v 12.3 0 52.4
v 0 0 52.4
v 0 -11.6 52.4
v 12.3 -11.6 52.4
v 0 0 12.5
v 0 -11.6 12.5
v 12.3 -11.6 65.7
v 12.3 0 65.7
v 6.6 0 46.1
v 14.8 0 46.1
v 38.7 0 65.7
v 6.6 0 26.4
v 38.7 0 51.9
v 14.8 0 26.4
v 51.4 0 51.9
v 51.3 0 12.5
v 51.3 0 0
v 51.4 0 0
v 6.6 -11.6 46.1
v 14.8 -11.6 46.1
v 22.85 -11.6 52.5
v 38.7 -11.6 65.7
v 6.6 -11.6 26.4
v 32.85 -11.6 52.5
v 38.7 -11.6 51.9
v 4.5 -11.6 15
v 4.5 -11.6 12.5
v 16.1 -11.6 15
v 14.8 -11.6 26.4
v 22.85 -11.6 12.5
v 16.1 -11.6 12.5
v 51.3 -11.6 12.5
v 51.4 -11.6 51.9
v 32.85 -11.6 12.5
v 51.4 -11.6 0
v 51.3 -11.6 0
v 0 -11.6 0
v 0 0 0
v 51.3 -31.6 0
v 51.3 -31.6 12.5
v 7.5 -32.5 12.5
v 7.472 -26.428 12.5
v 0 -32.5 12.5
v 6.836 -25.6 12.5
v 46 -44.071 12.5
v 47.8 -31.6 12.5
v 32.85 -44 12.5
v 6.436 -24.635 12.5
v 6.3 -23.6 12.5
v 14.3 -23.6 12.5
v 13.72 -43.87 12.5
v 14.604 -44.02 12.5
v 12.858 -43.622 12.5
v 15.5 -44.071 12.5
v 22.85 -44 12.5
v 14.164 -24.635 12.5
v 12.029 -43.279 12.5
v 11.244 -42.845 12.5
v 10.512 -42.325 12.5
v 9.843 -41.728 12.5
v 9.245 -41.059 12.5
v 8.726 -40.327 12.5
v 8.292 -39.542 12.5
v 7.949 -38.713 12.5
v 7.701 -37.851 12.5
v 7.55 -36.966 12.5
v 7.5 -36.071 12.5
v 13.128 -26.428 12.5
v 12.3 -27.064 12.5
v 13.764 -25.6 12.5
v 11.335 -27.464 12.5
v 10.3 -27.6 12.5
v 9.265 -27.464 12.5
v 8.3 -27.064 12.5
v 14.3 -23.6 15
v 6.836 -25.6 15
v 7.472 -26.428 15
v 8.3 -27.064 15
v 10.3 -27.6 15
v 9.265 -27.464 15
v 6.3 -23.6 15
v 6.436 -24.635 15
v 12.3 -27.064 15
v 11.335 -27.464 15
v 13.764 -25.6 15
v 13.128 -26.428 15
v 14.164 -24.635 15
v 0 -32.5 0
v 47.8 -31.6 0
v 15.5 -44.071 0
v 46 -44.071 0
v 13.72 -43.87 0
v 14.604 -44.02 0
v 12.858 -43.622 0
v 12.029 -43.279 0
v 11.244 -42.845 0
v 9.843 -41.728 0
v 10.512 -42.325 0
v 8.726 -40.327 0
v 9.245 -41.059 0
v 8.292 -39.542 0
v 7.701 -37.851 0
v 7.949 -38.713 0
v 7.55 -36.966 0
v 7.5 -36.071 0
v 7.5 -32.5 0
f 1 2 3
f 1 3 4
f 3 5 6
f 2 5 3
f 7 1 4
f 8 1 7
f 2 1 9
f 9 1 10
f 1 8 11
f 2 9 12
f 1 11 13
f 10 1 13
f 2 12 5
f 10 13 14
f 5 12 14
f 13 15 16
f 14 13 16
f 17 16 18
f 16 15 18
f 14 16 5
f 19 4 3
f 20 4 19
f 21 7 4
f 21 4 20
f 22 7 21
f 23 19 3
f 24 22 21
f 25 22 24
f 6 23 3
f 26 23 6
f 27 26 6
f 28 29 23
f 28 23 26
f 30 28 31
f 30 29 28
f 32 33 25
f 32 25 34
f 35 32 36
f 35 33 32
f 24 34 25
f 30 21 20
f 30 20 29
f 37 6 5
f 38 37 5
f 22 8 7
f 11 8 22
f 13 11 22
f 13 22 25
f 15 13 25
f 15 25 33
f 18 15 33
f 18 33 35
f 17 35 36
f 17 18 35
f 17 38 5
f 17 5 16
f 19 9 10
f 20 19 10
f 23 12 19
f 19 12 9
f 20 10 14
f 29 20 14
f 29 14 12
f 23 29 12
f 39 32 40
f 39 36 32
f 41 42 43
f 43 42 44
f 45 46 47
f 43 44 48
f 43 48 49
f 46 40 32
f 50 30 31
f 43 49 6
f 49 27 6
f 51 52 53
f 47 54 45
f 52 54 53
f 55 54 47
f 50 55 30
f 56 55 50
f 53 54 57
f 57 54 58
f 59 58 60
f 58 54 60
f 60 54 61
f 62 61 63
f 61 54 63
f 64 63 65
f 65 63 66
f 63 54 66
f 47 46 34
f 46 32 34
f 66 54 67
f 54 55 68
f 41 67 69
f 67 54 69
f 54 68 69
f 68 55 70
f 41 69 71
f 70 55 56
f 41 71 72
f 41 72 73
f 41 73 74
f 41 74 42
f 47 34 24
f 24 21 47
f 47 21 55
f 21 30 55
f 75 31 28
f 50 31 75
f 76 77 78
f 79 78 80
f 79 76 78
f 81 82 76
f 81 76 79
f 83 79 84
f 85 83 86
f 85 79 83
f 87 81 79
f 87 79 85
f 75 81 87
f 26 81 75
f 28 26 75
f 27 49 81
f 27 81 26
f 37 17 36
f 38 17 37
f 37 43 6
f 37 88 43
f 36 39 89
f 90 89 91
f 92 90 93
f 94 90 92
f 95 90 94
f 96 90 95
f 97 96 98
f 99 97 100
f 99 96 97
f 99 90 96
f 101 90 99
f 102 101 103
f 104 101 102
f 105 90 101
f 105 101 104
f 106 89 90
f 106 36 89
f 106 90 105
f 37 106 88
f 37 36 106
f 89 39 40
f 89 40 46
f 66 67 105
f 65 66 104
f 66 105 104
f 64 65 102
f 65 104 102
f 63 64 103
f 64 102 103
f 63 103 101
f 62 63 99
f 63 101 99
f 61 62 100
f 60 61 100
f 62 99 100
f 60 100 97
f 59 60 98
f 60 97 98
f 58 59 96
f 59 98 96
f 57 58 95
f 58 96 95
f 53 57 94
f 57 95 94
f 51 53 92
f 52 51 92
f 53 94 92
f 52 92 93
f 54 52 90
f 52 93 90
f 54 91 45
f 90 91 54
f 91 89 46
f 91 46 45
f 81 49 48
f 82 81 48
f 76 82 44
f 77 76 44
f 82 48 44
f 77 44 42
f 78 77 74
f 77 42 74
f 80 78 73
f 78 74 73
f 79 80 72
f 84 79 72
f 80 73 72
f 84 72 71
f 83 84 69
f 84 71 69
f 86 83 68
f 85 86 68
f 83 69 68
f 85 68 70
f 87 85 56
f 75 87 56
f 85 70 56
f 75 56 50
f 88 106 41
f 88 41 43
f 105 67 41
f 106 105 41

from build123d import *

# Parameters (mm, degrees)
PAD002_DEPTH = 10
SKETCH001_W  = 8.2
SKETCH001_H  = 19.7
PAD001_DEPTH = 11.6
PAD_DEPTH    = 12.5
PAD003_DEPTH = 2.5


with BuildPart() as escuadra:
    # Sketch002 → Pad002 (new body)
    with BuildSketch(Plane.YZ.offset(22.85)):
        Polygon((-44, 12.5), (-11.6, 12.5), (-11.6, 52.5), align=None)
    extrude(amount=PAD002_DEPTH)


with BuildPart() as vertical_orificio:
    # Sketch001 → Pad001 (new body)
    with BuildSketch(Plane.XZ):
        Polygon((0, 0), (0, 52.4), (12.3, 52.4), (12.3, 65.7), (38.7, 65.7), (38.7, 51.9), (51.4, 51.9), (51.4, 0), align=None)
        with Locations((10.7, 36.25)):
            Rectangle(SKETCH001_W, SKETCH001_H, mode=Mode.SUBTRACT)
    extrude(amount=PAD001_DEPTH)


with BuildPart() as escuadra_central:
    # Sketch → Pad (new body)
    with BuildSketch(Plane.XY):
        with BuildLine():
            Line((0, 0), (51.3, 0))
            Line((51.3, 0), (51.3, -31.6))
            Line((51.3, -31.6), (47.8, -31.6))
            Line((47.8, -31.6), (46, -44.070766))
            Line((46, -44.070766), (15.5, -44.070766))
            ThreePointArc((7.5, -36.070766), (9.843146, -41.72762), (15.5, -44.070766))
            Line((7.5, -36.070766), (7.5, -32.5))
            Line((7.5, -32.5), (0, -32.5))
            Line((0, -32.5), (0, 0))
        make_face()
    extrude(amount=PAD_DEPTH)

    # Sketch003 → Pad003 (new body)
    with BuildSketch(Plane.XY.offset(12.5)):
        with BuildLine():
            Line((4.5, -11.6), (16.1, -11.6))
            Line((16.1, -11.6), (14.3, -23.6))
            ThreePointArc((6.3, -23.6), (10.3, -27.6), (14.3, -23.6))
            Line((6.3, -23.6), (4.5, -11.6))
        make_face()
    extrude(amount=PAD003_DEPTH)

    # Fusion: union escuadra, vertical-orificio
    add(escuadra.part)
    add(vertical_orificio.part)


solid = escuadra_central.part
